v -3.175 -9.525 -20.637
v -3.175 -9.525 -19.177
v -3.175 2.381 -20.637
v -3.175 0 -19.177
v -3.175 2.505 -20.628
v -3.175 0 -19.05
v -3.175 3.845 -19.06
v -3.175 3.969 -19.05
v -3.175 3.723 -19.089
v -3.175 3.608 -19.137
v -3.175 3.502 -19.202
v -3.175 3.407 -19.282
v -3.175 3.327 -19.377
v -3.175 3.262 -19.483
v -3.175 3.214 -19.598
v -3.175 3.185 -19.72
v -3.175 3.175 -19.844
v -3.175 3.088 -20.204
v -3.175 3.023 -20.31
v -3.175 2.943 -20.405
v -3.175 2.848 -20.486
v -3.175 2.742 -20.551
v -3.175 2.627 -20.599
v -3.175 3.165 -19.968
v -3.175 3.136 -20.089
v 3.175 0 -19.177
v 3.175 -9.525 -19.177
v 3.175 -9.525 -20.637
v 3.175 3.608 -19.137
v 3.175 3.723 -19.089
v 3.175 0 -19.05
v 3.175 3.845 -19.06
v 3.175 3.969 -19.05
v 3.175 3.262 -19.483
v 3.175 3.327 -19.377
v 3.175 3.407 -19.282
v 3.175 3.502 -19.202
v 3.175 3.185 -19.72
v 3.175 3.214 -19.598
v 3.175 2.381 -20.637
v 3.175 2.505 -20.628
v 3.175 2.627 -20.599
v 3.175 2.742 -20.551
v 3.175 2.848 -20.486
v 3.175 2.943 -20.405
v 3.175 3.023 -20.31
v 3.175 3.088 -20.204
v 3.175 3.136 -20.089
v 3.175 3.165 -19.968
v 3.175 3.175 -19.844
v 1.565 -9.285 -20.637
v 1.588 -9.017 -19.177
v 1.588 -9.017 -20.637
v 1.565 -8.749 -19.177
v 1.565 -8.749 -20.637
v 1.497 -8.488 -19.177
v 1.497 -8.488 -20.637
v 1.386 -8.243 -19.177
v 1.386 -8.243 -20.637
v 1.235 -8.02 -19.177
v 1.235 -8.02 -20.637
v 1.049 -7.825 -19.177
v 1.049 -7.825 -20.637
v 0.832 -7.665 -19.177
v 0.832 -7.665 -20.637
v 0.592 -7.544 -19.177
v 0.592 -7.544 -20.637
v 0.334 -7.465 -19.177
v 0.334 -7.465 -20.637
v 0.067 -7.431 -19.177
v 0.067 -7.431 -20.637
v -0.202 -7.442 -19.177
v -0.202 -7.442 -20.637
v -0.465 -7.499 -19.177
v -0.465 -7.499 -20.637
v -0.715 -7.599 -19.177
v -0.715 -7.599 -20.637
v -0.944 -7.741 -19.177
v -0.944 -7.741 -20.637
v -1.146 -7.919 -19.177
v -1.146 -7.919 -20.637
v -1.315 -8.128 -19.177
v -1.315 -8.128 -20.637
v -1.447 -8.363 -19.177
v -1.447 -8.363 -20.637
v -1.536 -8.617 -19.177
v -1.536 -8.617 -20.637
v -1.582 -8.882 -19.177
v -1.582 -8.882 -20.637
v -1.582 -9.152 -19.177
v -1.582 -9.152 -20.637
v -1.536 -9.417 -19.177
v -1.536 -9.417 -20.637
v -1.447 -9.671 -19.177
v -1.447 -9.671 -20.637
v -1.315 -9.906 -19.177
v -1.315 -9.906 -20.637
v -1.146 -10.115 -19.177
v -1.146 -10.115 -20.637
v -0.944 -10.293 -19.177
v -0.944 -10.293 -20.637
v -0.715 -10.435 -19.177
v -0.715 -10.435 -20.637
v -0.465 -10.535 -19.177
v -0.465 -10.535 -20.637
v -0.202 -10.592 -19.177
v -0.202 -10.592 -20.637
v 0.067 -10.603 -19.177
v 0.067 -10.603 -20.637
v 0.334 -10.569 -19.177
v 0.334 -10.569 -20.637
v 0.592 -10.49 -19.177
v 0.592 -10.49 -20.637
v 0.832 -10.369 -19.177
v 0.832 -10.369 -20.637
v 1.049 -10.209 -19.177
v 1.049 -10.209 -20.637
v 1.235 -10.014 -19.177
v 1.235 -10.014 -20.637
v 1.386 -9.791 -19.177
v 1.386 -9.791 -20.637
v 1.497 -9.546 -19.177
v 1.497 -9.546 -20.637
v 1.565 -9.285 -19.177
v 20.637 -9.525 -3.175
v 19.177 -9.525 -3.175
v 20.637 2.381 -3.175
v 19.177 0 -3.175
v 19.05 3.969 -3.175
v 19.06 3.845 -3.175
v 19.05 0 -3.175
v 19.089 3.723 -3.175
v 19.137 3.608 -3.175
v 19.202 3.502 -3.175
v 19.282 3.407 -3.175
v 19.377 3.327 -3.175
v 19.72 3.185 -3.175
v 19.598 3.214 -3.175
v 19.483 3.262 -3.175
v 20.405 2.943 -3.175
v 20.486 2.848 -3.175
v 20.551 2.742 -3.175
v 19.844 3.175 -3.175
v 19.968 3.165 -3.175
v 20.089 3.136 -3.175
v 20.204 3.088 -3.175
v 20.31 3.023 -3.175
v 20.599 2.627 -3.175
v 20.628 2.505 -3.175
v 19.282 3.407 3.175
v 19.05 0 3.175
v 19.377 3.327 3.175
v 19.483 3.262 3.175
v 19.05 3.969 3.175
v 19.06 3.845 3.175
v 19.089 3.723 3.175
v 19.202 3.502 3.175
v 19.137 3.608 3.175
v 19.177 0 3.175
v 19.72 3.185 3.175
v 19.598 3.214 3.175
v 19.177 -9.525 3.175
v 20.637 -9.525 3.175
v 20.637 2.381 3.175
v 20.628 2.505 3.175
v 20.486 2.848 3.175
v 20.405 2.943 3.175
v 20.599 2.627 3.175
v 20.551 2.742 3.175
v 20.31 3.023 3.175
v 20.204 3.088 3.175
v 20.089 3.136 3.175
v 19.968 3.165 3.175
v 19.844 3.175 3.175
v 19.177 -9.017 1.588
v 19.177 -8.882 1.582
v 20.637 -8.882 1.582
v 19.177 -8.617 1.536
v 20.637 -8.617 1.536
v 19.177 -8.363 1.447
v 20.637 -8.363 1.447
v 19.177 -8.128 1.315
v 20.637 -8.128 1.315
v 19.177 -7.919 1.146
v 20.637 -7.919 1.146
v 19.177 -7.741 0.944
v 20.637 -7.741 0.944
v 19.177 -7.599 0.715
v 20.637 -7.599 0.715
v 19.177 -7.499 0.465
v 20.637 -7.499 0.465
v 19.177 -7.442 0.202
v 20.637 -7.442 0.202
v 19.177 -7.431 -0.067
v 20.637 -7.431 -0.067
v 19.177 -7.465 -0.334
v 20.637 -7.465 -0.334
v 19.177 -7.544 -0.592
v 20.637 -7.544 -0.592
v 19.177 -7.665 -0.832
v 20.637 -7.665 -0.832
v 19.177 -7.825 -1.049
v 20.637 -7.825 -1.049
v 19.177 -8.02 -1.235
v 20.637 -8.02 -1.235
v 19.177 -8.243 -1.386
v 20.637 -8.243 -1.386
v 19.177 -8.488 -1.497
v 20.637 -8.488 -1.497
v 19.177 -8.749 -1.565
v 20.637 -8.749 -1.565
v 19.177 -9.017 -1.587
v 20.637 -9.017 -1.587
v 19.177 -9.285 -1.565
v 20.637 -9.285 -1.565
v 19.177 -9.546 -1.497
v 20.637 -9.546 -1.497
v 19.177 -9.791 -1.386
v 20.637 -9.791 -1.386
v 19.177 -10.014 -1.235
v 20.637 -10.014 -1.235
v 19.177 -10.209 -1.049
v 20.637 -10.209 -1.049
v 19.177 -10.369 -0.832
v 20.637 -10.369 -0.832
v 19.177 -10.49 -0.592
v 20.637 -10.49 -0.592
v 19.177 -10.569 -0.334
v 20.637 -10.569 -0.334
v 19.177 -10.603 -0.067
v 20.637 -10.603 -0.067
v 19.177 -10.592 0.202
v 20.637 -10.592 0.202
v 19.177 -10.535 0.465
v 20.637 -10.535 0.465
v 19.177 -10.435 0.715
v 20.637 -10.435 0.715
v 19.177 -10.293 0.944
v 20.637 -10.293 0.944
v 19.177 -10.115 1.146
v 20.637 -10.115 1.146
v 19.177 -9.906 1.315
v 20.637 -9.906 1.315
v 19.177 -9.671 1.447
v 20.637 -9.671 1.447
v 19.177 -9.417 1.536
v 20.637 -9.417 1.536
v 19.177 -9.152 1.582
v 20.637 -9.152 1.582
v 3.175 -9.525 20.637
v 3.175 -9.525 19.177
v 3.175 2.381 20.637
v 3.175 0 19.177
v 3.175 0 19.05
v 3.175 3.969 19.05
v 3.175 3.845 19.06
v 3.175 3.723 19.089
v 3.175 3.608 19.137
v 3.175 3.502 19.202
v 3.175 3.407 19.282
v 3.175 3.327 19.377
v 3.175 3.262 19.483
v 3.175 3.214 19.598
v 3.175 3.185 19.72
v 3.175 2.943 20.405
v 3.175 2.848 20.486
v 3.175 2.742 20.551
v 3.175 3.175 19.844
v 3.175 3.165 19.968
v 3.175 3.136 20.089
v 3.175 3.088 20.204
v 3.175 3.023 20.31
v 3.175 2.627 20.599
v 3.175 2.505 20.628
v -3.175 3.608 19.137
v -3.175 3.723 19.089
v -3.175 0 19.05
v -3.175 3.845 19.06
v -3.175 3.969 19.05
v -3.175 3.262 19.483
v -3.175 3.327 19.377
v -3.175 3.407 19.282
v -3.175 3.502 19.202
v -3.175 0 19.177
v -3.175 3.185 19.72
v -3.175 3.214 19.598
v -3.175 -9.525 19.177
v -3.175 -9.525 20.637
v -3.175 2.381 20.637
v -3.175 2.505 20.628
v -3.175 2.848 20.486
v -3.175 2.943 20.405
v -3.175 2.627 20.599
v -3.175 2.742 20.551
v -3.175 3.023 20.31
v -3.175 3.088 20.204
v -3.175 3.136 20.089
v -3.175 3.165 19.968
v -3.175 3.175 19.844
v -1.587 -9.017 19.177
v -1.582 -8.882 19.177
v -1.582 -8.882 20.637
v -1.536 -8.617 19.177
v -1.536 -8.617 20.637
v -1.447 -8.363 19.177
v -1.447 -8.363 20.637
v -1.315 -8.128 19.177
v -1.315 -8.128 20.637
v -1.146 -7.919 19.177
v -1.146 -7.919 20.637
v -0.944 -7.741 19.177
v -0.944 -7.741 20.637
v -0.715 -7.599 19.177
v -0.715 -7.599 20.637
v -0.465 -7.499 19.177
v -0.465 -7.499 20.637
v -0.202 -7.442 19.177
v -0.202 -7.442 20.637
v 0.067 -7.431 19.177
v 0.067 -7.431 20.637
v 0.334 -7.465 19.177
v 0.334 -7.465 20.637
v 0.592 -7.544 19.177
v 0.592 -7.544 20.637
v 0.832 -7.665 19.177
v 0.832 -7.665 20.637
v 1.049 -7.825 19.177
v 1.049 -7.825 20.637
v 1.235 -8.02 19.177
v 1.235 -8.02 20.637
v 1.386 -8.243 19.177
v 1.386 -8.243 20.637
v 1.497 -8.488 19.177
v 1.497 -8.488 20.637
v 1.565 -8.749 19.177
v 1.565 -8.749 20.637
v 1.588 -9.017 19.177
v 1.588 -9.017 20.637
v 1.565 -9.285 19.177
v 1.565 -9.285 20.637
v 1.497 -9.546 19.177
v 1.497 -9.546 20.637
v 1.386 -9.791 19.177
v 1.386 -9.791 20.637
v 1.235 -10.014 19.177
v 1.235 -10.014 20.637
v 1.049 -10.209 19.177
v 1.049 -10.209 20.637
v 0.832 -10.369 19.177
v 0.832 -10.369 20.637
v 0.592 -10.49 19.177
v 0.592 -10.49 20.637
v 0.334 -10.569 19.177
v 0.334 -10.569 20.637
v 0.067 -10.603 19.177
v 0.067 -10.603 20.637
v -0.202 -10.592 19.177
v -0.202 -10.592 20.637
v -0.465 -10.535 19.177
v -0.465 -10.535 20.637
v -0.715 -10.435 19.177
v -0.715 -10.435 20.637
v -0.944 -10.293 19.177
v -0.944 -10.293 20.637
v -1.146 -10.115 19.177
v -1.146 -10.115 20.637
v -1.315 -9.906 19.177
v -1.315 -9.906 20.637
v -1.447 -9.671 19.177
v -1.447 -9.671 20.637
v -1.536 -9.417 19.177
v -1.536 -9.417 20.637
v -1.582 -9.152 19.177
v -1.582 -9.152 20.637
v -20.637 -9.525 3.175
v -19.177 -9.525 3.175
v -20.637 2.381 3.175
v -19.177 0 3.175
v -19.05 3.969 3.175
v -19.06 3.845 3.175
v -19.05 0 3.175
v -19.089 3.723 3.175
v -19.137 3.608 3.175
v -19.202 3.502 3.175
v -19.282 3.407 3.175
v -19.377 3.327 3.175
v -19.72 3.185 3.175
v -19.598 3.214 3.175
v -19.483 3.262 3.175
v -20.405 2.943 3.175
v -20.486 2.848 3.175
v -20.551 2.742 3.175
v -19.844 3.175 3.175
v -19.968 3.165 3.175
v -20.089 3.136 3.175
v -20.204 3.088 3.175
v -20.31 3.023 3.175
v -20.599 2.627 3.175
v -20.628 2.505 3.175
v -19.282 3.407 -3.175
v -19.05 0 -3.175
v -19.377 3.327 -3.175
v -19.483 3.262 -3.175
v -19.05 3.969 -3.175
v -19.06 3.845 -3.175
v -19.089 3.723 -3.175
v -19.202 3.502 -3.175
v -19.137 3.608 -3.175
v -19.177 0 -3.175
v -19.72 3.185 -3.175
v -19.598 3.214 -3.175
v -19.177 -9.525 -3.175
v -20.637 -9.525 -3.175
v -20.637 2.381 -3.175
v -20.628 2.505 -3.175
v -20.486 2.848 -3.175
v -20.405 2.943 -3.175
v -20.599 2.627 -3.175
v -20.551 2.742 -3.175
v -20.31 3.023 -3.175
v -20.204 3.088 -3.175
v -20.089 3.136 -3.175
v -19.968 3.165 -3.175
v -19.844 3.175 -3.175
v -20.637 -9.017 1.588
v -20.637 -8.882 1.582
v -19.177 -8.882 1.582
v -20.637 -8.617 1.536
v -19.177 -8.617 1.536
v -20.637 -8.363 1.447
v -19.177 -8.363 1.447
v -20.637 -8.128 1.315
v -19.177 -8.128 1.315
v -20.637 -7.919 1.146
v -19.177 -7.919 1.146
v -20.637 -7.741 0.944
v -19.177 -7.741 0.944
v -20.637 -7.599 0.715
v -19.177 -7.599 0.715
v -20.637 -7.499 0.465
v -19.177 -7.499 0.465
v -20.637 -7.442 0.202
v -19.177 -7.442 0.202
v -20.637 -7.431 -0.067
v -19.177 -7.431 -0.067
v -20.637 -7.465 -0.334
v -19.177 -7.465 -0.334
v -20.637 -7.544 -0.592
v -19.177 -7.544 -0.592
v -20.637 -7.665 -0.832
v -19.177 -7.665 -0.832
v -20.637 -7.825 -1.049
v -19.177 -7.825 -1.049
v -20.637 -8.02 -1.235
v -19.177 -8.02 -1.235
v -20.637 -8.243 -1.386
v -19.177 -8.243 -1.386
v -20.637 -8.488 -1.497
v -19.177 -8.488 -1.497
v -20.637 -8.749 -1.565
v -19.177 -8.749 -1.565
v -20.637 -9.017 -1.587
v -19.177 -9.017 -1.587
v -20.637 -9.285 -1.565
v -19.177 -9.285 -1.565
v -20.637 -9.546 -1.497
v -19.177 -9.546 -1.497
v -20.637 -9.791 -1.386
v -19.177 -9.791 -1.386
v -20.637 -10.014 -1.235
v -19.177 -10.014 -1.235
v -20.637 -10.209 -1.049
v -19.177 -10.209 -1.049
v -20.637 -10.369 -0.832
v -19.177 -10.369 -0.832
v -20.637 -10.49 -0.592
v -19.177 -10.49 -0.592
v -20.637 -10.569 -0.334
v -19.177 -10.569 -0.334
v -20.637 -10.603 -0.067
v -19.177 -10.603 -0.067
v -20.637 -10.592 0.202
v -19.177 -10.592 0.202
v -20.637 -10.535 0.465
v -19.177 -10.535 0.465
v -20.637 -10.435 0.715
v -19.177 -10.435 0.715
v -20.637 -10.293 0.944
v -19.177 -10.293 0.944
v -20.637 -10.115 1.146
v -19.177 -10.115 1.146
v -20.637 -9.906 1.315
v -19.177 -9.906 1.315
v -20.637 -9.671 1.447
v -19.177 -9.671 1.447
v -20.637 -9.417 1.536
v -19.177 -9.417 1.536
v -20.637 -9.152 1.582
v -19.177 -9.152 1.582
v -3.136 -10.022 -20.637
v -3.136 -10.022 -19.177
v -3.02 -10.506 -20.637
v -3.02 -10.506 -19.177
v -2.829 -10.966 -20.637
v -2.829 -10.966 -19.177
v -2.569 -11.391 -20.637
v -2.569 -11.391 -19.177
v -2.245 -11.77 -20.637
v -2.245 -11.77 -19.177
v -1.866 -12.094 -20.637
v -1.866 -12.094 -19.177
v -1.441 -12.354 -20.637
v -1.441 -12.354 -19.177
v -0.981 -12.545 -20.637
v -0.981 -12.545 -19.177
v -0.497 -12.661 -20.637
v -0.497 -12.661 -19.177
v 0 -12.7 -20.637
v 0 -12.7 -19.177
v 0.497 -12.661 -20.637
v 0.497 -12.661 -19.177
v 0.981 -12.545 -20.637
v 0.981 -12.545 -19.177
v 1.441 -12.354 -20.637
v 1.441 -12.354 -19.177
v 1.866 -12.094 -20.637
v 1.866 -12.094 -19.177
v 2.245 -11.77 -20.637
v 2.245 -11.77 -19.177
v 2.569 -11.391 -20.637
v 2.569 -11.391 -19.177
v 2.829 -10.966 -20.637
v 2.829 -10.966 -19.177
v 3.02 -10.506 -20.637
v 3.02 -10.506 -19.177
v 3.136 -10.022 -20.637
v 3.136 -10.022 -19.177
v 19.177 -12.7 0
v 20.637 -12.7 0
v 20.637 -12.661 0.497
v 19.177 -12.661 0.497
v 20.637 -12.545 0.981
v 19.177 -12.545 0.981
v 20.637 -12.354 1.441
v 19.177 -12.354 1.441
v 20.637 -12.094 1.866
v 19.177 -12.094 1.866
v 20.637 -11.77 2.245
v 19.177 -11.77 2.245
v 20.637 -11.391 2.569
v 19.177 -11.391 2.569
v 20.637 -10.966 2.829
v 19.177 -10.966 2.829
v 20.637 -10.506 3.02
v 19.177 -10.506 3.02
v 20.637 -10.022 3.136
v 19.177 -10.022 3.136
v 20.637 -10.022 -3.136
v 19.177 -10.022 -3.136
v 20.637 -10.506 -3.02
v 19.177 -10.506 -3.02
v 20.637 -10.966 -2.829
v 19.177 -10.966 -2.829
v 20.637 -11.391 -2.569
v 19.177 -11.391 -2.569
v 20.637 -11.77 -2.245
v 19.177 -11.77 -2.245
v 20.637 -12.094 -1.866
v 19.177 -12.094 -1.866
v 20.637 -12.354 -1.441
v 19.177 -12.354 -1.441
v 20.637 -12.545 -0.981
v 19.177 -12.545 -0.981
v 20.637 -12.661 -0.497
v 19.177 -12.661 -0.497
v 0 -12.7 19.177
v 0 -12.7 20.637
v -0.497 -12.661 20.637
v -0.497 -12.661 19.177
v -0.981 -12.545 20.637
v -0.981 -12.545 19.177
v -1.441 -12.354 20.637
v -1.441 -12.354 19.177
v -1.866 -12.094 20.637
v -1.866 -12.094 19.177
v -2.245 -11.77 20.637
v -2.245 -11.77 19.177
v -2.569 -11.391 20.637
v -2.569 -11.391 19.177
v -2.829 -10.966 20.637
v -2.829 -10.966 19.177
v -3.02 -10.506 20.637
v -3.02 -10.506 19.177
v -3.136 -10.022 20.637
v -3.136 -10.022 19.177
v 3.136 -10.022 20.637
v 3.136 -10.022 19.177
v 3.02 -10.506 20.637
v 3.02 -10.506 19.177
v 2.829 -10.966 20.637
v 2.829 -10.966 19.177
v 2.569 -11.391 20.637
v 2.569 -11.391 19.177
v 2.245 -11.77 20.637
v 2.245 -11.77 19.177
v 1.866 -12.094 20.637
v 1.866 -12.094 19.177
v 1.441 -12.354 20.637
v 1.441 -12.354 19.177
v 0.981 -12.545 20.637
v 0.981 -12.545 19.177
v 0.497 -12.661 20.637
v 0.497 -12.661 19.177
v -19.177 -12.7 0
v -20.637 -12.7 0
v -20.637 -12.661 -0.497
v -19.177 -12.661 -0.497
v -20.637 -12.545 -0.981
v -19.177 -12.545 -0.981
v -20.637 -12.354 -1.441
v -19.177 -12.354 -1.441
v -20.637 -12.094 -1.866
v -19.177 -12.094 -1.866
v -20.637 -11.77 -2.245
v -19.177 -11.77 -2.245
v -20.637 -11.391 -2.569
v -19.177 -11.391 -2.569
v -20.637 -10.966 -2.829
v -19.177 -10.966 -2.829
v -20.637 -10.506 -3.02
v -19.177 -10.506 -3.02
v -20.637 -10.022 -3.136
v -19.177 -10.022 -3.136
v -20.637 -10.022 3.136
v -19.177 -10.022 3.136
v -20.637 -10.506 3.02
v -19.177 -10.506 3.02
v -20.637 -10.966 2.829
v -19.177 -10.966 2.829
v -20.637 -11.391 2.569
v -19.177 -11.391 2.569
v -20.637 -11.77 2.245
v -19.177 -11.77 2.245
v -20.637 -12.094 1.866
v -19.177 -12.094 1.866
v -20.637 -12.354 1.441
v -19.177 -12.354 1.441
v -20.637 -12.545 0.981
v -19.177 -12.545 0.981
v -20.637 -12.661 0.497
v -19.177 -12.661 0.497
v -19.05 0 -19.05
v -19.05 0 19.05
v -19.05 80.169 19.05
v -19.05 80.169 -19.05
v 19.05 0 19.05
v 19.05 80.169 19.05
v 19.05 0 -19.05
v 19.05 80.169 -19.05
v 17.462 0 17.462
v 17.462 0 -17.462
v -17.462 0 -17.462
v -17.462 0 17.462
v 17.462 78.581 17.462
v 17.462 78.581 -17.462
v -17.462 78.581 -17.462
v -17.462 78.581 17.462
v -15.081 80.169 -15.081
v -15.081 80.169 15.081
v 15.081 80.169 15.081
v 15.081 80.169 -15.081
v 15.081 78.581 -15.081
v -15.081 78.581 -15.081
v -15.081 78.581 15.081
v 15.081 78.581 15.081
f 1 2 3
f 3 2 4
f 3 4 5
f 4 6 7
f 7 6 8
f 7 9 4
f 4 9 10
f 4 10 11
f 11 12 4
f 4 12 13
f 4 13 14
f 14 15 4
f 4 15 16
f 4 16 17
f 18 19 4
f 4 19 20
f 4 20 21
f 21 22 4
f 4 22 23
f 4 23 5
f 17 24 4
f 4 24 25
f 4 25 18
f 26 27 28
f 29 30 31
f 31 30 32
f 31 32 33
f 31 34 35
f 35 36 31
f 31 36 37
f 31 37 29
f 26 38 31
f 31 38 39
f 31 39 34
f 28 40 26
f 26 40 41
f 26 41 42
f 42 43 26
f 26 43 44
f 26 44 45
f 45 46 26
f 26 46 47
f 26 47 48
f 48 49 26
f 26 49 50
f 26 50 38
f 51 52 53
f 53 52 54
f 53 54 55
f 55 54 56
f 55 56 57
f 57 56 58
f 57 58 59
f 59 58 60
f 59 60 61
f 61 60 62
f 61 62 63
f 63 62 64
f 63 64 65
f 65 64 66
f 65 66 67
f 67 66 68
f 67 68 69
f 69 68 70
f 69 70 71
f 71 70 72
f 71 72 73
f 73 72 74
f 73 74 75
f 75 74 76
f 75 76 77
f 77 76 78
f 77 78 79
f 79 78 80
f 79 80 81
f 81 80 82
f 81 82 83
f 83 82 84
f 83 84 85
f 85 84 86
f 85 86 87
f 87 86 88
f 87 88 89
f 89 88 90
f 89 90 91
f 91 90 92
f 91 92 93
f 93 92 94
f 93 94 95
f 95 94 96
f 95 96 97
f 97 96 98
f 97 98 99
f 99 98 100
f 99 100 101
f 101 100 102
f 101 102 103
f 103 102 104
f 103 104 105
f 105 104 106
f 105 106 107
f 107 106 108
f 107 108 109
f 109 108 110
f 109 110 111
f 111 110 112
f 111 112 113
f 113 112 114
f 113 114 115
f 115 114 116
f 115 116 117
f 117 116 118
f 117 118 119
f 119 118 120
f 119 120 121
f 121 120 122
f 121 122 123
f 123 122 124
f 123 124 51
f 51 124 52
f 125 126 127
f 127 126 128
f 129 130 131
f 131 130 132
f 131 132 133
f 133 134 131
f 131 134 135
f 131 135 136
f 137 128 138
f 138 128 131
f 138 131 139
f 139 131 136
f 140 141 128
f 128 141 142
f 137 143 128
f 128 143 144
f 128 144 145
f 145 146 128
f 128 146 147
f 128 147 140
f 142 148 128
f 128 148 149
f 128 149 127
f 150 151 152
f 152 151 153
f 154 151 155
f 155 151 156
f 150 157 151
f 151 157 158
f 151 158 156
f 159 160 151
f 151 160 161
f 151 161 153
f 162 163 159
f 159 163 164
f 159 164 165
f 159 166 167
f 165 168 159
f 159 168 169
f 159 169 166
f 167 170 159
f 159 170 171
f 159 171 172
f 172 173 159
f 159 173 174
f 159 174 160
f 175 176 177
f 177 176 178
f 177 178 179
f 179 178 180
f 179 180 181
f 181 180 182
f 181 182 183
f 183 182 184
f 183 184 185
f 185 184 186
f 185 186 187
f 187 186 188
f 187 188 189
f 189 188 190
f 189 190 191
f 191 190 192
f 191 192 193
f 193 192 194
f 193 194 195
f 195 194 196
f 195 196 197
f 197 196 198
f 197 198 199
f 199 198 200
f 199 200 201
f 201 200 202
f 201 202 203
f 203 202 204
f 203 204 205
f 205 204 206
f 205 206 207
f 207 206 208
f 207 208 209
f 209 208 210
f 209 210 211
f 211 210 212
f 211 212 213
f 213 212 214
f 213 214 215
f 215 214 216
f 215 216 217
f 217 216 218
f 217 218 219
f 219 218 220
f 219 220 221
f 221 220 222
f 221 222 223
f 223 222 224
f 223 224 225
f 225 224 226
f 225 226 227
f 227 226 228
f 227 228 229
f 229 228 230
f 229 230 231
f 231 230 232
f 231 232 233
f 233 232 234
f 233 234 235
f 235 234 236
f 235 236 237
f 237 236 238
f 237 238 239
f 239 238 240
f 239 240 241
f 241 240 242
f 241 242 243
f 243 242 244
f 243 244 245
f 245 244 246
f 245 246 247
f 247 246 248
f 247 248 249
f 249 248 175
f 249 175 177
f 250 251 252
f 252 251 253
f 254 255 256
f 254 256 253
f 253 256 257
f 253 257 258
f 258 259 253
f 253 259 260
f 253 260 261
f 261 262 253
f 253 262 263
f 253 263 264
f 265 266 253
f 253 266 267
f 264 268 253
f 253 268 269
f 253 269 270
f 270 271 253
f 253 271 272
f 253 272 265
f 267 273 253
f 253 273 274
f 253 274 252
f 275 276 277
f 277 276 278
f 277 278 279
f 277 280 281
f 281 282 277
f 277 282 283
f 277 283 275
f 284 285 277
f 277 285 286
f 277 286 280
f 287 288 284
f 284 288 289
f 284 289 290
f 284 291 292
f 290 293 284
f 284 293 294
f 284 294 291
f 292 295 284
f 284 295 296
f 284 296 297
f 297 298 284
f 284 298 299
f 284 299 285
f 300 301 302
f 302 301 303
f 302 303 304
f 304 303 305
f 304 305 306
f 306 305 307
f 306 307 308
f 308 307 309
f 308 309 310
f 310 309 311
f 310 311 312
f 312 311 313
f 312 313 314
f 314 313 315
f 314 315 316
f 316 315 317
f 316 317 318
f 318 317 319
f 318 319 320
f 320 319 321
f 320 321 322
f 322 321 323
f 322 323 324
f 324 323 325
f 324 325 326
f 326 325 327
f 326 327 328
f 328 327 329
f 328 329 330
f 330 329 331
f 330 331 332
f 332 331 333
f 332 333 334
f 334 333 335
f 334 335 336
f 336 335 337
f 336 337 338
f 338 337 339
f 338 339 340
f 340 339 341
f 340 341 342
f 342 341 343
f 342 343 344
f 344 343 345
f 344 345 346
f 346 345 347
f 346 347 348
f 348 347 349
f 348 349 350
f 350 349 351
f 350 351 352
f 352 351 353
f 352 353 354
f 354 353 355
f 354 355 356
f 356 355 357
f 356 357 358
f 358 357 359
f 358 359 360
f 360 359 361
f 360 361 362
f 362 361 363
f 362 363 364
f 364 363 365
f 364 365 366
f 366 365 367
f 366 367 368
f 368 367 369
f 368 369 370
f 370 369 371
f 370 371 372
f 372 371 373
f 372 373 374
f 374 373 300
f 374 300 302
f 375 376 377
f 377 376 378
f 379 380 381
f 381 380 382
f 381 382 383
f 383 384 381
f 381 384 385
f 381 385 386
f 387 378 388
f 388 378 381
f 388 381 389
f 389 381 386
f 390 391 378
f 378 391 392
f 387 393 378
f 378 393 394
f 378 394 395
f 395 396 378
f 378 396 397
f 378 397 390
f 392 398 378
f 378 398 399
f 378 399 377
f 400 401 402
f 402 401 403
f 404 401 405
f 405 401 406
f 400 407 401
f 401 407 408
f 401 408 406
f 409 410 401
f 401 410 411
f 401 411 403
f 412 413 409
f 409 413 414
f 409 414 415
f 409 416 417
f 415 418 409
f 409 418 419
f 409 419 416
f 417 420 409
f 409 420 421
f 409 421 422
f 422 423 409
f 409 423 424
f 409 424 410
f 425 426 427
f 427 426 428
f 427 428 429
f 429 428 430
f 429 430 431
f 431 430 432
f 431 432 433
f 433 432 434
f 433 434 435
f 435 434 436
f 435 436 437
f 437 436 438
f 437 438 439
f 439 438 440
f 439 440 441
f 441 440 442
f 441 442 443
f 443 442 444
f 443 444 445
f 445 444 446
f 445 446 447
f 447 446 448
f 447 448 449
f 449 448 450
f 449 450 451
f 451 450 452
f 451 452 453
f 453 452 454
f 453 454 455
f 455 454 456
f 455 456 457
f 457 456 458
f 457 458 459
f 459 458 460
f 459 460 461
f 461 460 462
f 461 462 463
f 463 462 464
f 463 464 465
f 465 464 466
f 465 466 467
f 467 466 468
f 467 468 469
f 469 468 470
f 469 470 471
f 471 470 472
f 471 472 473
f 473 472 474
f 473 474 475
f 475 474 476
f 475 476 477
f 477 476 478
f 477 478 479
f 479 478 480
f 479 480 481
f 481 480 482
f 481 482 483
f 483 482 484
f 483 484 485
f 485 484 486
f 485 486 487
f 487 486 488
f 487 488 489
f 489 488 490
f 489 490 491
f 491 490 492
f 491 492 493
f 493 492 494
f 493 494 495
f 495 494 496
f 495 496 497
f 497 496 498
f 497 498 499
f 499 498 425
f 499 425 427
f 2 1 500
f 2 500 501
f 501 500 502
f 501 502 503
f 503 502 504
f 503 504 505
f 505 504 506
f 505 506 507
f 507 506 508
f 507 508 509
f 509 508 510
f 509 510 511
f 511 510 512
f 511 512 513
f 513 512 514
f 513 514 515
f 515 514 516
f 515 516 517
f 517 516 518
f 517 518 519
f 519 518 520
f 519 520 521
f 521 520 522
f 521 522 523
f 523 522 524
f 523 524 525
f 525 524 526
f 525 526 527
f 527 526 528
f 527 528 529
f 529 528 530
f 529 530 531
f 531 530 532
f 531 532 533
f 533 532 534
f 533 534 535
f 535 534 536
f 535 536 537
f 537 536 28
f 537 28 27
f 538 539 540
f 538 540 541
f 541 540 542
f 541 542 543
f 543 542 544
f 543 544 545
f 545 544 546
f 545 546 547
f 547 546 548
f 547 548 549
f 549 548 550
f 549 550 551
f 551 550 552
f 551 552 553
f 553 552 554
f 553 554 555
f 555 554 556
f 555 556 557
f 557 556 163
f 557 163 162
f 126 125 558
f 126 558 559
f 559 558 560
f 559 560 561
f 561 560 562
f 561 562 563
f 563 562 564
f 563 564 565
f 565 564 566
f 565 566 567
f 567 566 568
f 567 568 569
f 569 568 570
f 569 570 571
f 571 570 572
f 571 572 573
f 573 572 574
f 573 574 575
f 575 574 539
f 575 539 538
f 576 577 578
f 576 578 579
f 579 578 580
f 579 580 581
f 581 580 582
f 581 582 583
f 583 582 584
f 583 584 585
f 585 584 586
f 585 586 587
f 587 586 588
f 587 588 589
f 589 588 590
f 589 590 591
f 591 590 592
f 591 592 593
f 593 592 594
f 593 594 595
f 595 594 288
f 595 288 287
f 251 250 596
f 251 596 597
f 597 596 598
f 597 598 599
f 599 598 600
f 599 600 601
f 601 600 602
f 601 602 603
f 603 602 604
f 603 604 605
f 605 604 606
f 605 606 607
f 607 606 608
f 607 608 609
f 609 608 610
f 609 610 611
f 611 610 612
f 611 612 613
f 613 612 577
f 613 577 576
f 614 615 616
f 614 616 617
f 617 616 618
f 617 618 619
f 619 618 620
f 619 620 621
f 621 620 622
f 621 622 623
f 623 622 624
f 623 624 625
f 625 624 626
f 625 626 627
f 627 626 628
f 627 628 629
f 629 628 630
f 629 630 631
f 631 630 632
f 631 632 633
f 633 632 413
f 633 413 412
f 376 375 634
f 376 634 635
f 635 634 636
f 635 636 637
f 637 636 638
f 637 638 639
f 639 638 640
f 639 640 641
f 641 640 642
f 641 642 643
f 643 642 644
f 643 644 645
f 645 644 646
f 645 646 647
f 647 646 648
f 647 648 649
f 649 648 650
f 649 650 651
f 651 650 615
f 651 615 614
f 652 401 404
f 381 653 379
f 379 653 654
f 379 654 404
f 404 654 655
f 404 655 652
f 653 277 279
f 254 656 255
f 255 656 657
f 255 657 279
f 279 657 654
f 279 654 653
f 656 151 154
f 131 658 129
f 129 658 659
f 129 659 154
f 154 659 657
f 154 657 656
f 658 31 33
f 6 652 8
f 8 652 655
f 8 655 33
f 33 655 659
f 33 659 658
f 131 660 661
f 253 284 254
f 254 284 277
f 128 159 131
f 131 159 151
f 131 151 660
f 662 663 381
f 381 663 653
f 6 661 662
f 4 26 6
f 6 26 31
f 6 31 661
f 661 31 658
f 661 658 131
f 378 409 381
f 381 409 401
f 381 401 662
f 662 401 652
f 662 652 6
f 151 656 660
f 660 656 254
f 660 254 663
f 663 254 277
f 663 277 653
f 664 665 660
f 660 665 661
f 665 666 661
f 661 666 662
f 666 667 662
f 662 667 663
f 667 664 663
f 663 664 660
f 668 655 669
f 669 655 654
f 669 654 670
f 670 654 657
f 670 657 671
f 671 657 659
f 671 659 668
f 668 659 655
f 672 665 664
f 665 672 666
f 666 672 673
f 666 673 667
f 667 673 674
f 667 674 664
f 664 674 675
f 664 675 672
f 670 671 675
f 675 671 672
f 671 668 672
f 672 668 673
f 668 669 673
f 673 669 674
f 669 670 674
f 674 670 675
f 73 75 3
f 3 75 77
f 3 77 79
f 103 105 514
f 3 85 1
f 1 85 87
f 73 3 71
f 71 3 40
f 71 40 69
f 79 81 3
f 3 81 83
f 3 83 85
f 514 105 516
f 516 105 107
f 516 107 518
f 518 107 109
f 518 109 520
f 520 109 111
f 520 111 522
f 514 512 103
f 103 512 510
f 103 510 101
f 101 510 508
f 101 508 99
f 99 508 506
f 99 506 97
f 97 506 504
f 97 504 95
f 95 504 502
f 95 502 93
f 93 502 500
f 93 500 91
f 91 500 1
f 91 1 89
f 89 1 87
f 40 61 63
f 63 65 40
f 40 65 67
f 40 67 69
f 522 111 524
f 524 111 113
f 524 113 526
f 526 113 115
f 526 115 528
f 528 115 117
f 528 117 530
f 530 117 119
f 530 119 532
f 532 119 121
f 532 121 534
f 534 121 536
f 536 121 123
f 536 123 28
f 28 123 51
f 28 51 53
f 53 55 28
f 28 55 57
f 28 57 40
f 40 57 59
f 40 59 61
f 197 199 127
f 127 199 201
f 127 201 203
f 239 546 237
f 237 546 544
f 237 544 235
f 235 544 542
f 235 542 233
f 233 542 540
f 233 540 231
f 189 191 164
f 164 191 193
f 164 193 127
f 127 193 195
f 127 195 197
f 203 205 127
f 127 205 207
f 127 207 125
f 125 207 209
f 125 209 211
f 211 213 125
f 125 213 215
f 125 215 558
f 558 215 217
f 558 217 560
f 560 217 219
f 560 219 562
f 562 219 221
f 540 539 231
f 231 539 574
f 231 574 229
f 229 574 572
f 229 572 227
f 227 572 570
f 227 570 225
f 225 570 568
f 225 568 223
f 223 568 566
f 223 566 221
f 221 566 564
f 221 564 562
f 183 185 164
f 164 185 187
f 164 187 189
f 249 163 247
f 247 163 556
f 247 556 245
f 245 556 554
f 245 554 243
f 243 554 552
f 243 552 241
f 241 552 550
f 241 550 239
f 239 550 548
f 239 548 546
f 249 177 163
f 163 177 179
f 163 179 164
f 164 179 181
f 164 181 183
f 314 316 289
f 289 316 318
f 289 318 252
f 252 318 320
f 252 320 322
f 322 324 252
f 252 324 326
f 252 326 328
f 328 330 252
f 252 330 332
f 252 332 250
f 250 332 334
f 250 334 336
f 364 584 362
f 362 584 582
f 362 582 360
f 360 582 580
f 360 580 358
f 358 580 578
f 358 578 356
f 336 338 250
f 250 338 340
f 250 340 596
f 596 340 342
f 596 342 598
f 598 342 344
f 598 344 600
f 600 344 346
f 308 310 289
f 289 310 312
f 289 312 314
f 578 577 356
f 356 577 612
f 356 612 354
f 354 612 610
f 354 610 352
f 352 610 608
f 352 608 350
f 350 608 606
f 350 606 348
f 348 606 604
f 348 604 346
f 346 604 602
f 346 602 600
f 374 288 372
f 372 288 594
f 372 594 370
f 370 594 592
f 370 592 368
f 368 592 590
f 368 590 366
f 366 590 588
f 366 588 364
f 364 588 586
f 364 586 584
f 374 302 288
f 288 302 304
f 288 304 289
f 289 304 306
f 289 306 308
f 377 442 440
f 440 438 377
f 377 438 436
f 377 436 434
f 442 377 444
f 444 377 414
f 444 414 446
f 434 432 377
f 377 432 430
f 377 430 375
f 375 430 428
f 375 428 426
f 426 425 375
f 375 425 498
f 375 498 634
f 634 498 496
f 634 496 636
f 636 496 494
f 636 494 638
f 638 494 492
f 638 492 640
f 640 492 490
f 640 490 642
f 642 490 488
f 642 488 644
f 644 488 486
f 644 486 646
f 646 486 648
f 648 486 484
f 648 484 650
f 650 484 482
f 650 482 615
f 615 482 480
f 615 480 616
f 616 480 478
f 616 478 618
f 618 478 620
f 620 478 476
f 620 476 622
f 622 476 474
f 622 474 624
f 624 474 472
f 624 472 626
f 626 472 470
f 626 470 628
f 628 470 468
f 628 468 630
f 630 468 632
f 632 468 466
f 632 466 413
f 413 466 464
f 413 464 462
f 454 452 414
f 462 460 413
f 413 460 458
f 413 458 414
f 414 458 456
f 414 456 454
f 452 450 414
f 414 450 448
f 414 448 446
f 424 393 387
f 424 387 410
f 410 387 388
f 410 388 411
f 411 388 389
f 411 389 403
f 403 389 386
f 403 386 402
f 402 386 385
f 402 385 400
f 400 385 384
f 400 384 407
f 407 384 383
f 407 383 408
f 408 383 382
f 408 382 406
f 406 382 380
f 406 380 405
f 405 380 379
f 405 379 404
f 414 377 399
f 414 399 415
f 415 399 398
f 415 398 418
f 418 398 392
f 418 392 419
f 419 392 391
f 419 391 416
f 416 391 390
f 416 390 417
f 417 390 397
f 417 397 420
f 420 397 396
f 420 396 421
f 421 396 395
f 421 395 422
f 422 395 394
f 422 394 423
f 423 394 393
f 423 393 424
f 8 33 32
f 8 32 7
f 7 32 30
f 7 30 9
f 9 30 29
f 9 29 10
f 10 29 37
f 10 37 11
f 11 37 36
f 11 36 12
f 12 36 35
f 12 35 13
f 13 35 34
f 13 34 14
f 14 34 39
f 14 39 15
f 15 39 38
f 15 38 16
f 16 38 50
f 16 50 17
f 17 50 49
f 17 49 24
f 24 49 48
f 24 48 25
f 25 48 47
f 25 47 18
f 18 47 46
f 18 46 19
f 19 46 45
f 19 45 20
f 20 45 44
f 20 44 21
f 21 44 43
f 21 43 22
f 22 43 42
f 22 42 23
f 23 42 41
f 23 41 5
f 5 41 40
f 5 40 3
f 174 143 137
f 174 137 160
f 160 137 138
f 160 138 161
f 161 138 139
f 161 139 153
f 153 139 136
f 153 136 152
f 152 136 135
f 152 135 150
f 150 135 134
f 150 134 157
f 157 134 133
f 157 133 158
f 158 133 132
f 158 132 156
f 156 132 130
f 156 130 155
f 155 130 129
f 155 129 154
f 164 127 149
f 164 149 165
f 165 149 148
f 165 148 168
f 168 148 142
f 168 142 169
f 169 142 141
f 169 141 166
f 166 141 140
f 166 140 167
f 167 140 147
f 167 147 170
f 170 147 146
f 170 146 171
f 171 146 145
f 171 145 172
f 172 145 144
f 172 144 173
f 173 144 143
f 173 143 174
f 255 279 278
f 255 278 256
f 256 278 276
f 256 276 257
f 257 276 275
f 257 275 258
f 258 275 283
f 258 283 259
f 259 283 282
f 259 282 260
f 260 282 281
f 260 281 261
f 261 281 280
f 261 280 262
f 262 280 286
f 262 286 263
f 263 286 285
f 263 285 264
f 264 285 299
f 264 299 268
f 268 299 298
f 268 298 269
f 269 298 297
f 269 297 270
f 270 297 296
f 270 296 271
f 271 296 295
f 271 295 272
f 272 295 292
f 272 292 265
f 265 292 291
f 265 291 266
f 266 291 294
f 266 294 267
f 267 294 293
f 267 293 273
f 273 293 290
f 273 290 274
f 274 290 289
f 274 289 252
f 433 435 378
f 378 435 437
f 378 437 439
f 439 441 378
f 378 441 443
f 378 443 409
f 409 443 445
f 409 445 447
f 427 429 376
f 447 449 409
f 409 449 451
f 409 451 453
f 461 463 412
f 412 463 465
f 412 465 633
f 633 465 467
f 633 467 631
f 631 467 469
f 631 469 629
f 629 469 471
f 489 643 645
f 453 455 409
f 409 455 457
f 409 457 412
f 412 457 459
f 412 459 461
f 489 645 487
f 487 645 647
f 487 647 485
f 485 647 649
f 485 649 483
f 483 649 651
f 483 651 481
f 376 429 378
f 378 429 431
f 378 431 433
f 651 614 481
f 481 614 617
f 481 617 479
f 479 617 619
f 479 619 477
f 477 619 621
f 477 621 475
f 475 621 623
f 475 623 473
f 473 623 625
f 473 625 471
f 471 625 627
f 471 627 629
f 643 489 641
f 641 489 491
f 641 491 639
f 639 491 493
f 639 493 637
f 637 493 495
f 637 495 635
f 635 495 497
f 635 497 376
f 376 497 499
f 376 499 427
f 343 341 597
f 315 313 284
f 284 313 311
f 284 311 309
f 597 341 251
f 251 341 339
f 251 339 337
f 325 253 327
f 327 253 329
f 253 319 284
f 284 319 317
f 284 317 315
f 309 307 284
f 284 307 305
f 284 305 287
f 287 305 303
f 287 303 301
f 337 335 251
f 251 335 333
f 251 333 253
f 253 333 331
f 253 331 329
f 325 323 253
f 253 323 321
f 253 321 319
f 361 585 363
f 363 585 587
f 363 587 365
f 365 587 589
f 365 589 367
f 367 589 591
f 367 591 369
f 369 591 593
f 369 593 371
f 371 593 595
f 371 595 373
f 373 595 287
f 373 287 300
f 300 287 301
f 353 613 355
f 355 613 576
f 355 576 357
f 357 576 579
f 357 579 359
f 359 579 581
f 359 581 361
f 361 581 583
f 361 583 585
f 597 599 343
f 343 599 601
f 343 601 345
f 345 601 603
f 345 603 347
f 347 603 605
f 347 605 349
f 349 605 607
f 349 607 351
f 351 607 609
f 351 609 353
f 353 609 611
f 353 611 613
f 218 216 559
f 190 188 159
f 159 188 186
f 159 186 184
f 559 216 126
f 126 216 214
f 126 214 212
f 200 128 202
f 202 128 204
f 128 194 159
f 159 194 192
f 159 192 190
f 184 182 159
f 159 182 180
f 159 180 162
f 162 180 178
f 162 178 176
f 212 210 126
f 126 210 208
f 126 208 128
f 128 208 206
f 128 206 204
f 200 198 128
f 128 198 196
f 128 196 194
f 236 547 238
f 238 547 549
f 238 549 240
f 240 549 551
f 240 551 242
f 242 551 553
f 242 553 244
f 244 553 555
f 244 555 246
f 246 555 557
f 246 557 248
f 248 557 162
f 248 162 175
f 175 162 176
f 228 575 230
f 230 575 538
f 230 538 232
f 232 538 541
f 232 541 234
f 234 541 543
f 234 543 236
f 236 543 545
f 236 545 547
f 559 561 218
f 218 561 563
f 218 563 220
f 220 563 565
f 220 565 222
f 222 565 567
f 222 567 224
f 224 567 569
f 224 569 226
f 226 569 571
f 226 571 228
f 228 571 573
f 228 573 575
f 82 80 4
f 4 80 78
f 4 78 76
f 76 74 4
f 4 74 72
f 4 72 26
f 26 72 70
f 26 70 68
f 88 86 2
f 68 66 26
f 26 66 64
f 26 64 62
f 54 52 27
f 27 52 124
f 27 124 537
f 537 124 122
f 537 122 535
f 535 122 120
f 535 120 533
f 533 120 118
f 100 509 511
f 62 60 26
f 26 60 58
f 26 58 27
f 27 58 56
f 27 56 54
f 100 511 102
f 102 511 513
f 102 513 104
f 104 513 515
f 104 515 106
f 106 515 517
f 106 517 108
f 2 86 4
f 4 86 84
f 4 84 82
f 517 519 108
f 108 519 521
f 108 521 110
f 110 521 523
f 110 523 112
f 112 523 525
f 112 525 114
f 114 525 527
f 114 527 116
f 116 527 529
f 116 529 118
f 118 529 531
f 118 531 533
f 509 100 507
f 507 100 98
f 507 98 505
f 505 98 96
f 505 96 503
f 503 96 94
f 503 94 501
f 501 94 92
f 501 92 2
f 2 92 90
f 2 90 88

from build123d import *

# Parameters (mm, degrees)
SKETCH1_W             = 38.1
SKETCH1_H             = 38.1
SKETCH1_W_2           = 34.925
SKETCH1_H_2           = 34.925
BOSS_EXTRUDE1_DEPTH   = 78.58125
SKETCH2_W             = 38.1
SKETCH2_H             = 38.1
SKETCH2_W_2           = 30.1625
SKETCH2_H_2           = 30.1625
BOSS_EXTRUDE2_DEPTH   = 1.5875
SKETCH3_W             = 1.5875
SKETCH3_H             = 6.35
BOSS_EXTRUDE3_DEPTH   = 12.7
SKETCH3_W_2           = 6.35
SKETCH3_H_2           = 1.5875
BOSS_EXTRUDE3_2_DEPTH = 12.7
BOSS_EXTRUDE3_3_DEPTH = 12.7
BOSS_EXTRUDE3_4_DEPTH = 12.7
SKETCH4_R             = 1.5875
CUT_EXTRUDE3_DEPTH    = 50.8
SKETCH5_R             = 1.5875
CUT_EXTRUDE4_DEPTH    = 50.8
SKETCH6_W             = 6.35
SKETCH6_H             = 1.5875
SKETCH6_W_2           = 1.5875
SKETCH6_H_2           = 6.35
BOSS_EXTRUDE4_DEPTH   = 3.175
FILLET3_R             = 0.79375
FILLET4_R             = 3.175
SKETCH7_W             = 38.354
SKETCH7_H             = 38.354
CUT_EXTRUDE5_DEPTH    = 25.4


with BuildPart() as part:
    # Sketch1 → Boss-Extrude1 (new body)
    with BuildSketch(Plane(origin=(0, 0, 0), x_dir=(1, 0, 0), z_dir=(0, 1, 0))):
        Rectangle(SKETCH1_W, SKETCH1_H)
        Rectangle(SKETCH1_W_2, SKETCH1_H_2, mode=Mode.SUBTRACT)
    extrude(amount=BOSS_EXTRUDE1_DEPTH)

    # Sketch2 → Boss-Extrude2 (add)
    with BuildSketch(Plane(origin=(0, 78.58125, 0), x_dir=(1, 0, 0), z_dir=(0, 1, 0))):
        Rectangle(SKETCH2_W, SKETCH2_H)
        Rectangle(SKETCH2_W_2, SKETCH2_H_2, mode=Mode.SUBTRACT)
    extrude(amount=BOSS_EXTRUDE2_DEPTH)



with BuildPart() as body_2:
    # Sketch3 → Boss-Extrude3 (new body)
    with BuildSketch(Plane.XZ):
        with Locations((-19.84375, 0)):
            Rectangle(SKETCH3_W, SKETCH3_H)
    extrude(amount=BOSS_EXTRUDE3_DEPTH)


with BuildPart() as body_3:
    # Sketch3 → Boss-Extrude3 2 (new body)
    with BuildSketch(Plane.XZ):
        with Locations((0, 19.84375)):
            Rectangle(SKETCH3_W_2, SKETCH3_H_2)
    extrude(amount=BOSS_EXTRUDE3_2_DEPTH)


with BuildPart() as body_4:
    # Sketch3 → Boss-Extrude3 3 (new body)
    with BuildSketch(Plane.XZ):
        with Locations((19.84375, 0)):
            Rectangle(SKETCH3_W, SKETCH3_H)
    extrude(amount=BOSS_EXTRUDE3_3_DEPTH)


with BuildPart() as body_5:
    # Sketch3 → Boss-Extrude3 4 (new body)
    with BuildSketch(Plane.XZ):
        with Locations((0, -19.84375)):
            Rectangle(SKETCH3_W_2, SKETCH3_H_2)
    extrude(amount=BOSS_EXTRUDE3_4_DEPTH)


with BuildPart() as cut_extrude3_tool:
    # Sketch4 → Cut-Extrude3 (new body)
    with BuildSketch(Plane.XY.offset(20.6375)):
        with Locations((0, -9.017)):
            Circle(SKETCH4_R)
    extrude(amount=-CUT_EXTRUDE3_DEPTH)


with BuildPart() as body_3_1:
    add(body_3.part)

    # Cut-Extrude3: cut by cut_extrude3_tool
    add(cut_extrude3_tool.part, mode=Mode.SUBTRACT)


with BuildPart() as body_5_1:
    add(body_5.part)

    # Cut-Extrude3: cut by cut_extrude3_tool
    add(cut_extrude3_tool.part, mode=Mode.SUBTRACT)


with BuildPart() as cut_extrude4_tool:
    # Sketch5 → Cut-Extrude4 (new body)
    with BuildSketch(Plane(origin=(20.6375, 0, 0), x_dir=(0, 0, -1), z_dir=(1, 0, 0))):
        with Locations((0, -9.017)):
            Circle(SKETCH5_R)
    extrude(amount=-CUT_EXTRUDE4_DEPTH)


with BuildPart() as body_2_1:
    add(body_2.part)

    # Cut-Extrude4: cut by cut_extrude4_tool
    add(cut_extrude4_tool.part, mode=Mode.SUBTRACT)


with BuildPart() as body_4_1:
    add(body_4.part)

    # Cut-Extrude4: cut by cut_extrude4_tool
    add(cut_extrude4_tool.part, mode=Mode.SUBTRACT)


with BuildPart() as part_1:
    add(part.part)

    add(body_2_1.part)  # Boss-Extrude4 merges body 2

    add(body_3_1.part)  # Boss-Extrude4 merges body 3

    add(body_4_1.part)  # Boss-Extrude4 merges body 4

    add(body_5_1.part)  # Boss-Extrude4 merges body 5
    # Sketch6 → Boss-Extrude4 (add)
    with BuildSketch(Plane(origin=(0, 0, 0), x_dir=(1, 0, 0), z_dir=(0, 1, 0))):
        with Locations((0, 19.84375)):
            Rectangle(SKETCH6_W, SKETCH6_H)
        with Locations((19.84375, 0)):
            Rectangle(SKETCH6_W_2, SKETCH6_H_2)
        with Locations((0, -19.84375)):
            Rectangle(SKETCH6_W, SKETCH6_H)
        with Locations((-19.84375, 0)):
            Rectangle(SKETCH6_W_2, SKETCH6_H_2)
    extrude(amount=BOSS_EXTRUDE4_DEPTH)

    # Fillet3
    fillet3_edges = [part_1.edges().sort_by_distance(p)[0] for p in [
        (-19.05, 3.175, 0),
        (0, 3.175, -19.05),
        (19.05, 3.175, 0),
        (0, 3.175, 19.05),
    ]]
    fillet(fillet3_edges, radius=FILLET3_R)
    fillet3_2_edges = [part_1.edges().sort_by_distance(p)[0] for p in [
        (-20.6375, 3.175, 0),
        (0, 3.175, -20.6375),
        (20.6375, 3.175, 0),
        (0, 3.175, 20.6375),
    ]]
    fillet(fillet3_2_edges, radius=FILLET3_R - 0.0001)  # a hair under: the kernel refuses the full size

    # Fillet4
    fillet4_edges = [part_1.edges().sort_by_distance(p)[0] for p in [
        (3.175, -12.7, -19.84375),
        (-3.175, -12.7, -19.84375),
        (19.84375, -12.7, -3.175),
        (19.84375, -12.7, 3.175),
        (3.175, -12.7, 19.84375),
        (-3.175, -12.7, 19.84375),
        (-19.84375, -12.7, 3.175),
        (-19.84375, -12.7, -3.175),
    ]]
    fillet(fillet4_edges, radius=FILLET4_R - 0.0001)  # a hair under: the kernel refuses the full size

    # Sketch7 → Cut-Extrude5 (cut)
    with BuildSketch(Plane.XZ):
        Rectangle(SKETCH7_W, SKETCH7_H)
    extrude(amount=CUT_EXTRUDE5_DEPTH, mode=Mode.SUBTRACT)


solid = part_1.part
